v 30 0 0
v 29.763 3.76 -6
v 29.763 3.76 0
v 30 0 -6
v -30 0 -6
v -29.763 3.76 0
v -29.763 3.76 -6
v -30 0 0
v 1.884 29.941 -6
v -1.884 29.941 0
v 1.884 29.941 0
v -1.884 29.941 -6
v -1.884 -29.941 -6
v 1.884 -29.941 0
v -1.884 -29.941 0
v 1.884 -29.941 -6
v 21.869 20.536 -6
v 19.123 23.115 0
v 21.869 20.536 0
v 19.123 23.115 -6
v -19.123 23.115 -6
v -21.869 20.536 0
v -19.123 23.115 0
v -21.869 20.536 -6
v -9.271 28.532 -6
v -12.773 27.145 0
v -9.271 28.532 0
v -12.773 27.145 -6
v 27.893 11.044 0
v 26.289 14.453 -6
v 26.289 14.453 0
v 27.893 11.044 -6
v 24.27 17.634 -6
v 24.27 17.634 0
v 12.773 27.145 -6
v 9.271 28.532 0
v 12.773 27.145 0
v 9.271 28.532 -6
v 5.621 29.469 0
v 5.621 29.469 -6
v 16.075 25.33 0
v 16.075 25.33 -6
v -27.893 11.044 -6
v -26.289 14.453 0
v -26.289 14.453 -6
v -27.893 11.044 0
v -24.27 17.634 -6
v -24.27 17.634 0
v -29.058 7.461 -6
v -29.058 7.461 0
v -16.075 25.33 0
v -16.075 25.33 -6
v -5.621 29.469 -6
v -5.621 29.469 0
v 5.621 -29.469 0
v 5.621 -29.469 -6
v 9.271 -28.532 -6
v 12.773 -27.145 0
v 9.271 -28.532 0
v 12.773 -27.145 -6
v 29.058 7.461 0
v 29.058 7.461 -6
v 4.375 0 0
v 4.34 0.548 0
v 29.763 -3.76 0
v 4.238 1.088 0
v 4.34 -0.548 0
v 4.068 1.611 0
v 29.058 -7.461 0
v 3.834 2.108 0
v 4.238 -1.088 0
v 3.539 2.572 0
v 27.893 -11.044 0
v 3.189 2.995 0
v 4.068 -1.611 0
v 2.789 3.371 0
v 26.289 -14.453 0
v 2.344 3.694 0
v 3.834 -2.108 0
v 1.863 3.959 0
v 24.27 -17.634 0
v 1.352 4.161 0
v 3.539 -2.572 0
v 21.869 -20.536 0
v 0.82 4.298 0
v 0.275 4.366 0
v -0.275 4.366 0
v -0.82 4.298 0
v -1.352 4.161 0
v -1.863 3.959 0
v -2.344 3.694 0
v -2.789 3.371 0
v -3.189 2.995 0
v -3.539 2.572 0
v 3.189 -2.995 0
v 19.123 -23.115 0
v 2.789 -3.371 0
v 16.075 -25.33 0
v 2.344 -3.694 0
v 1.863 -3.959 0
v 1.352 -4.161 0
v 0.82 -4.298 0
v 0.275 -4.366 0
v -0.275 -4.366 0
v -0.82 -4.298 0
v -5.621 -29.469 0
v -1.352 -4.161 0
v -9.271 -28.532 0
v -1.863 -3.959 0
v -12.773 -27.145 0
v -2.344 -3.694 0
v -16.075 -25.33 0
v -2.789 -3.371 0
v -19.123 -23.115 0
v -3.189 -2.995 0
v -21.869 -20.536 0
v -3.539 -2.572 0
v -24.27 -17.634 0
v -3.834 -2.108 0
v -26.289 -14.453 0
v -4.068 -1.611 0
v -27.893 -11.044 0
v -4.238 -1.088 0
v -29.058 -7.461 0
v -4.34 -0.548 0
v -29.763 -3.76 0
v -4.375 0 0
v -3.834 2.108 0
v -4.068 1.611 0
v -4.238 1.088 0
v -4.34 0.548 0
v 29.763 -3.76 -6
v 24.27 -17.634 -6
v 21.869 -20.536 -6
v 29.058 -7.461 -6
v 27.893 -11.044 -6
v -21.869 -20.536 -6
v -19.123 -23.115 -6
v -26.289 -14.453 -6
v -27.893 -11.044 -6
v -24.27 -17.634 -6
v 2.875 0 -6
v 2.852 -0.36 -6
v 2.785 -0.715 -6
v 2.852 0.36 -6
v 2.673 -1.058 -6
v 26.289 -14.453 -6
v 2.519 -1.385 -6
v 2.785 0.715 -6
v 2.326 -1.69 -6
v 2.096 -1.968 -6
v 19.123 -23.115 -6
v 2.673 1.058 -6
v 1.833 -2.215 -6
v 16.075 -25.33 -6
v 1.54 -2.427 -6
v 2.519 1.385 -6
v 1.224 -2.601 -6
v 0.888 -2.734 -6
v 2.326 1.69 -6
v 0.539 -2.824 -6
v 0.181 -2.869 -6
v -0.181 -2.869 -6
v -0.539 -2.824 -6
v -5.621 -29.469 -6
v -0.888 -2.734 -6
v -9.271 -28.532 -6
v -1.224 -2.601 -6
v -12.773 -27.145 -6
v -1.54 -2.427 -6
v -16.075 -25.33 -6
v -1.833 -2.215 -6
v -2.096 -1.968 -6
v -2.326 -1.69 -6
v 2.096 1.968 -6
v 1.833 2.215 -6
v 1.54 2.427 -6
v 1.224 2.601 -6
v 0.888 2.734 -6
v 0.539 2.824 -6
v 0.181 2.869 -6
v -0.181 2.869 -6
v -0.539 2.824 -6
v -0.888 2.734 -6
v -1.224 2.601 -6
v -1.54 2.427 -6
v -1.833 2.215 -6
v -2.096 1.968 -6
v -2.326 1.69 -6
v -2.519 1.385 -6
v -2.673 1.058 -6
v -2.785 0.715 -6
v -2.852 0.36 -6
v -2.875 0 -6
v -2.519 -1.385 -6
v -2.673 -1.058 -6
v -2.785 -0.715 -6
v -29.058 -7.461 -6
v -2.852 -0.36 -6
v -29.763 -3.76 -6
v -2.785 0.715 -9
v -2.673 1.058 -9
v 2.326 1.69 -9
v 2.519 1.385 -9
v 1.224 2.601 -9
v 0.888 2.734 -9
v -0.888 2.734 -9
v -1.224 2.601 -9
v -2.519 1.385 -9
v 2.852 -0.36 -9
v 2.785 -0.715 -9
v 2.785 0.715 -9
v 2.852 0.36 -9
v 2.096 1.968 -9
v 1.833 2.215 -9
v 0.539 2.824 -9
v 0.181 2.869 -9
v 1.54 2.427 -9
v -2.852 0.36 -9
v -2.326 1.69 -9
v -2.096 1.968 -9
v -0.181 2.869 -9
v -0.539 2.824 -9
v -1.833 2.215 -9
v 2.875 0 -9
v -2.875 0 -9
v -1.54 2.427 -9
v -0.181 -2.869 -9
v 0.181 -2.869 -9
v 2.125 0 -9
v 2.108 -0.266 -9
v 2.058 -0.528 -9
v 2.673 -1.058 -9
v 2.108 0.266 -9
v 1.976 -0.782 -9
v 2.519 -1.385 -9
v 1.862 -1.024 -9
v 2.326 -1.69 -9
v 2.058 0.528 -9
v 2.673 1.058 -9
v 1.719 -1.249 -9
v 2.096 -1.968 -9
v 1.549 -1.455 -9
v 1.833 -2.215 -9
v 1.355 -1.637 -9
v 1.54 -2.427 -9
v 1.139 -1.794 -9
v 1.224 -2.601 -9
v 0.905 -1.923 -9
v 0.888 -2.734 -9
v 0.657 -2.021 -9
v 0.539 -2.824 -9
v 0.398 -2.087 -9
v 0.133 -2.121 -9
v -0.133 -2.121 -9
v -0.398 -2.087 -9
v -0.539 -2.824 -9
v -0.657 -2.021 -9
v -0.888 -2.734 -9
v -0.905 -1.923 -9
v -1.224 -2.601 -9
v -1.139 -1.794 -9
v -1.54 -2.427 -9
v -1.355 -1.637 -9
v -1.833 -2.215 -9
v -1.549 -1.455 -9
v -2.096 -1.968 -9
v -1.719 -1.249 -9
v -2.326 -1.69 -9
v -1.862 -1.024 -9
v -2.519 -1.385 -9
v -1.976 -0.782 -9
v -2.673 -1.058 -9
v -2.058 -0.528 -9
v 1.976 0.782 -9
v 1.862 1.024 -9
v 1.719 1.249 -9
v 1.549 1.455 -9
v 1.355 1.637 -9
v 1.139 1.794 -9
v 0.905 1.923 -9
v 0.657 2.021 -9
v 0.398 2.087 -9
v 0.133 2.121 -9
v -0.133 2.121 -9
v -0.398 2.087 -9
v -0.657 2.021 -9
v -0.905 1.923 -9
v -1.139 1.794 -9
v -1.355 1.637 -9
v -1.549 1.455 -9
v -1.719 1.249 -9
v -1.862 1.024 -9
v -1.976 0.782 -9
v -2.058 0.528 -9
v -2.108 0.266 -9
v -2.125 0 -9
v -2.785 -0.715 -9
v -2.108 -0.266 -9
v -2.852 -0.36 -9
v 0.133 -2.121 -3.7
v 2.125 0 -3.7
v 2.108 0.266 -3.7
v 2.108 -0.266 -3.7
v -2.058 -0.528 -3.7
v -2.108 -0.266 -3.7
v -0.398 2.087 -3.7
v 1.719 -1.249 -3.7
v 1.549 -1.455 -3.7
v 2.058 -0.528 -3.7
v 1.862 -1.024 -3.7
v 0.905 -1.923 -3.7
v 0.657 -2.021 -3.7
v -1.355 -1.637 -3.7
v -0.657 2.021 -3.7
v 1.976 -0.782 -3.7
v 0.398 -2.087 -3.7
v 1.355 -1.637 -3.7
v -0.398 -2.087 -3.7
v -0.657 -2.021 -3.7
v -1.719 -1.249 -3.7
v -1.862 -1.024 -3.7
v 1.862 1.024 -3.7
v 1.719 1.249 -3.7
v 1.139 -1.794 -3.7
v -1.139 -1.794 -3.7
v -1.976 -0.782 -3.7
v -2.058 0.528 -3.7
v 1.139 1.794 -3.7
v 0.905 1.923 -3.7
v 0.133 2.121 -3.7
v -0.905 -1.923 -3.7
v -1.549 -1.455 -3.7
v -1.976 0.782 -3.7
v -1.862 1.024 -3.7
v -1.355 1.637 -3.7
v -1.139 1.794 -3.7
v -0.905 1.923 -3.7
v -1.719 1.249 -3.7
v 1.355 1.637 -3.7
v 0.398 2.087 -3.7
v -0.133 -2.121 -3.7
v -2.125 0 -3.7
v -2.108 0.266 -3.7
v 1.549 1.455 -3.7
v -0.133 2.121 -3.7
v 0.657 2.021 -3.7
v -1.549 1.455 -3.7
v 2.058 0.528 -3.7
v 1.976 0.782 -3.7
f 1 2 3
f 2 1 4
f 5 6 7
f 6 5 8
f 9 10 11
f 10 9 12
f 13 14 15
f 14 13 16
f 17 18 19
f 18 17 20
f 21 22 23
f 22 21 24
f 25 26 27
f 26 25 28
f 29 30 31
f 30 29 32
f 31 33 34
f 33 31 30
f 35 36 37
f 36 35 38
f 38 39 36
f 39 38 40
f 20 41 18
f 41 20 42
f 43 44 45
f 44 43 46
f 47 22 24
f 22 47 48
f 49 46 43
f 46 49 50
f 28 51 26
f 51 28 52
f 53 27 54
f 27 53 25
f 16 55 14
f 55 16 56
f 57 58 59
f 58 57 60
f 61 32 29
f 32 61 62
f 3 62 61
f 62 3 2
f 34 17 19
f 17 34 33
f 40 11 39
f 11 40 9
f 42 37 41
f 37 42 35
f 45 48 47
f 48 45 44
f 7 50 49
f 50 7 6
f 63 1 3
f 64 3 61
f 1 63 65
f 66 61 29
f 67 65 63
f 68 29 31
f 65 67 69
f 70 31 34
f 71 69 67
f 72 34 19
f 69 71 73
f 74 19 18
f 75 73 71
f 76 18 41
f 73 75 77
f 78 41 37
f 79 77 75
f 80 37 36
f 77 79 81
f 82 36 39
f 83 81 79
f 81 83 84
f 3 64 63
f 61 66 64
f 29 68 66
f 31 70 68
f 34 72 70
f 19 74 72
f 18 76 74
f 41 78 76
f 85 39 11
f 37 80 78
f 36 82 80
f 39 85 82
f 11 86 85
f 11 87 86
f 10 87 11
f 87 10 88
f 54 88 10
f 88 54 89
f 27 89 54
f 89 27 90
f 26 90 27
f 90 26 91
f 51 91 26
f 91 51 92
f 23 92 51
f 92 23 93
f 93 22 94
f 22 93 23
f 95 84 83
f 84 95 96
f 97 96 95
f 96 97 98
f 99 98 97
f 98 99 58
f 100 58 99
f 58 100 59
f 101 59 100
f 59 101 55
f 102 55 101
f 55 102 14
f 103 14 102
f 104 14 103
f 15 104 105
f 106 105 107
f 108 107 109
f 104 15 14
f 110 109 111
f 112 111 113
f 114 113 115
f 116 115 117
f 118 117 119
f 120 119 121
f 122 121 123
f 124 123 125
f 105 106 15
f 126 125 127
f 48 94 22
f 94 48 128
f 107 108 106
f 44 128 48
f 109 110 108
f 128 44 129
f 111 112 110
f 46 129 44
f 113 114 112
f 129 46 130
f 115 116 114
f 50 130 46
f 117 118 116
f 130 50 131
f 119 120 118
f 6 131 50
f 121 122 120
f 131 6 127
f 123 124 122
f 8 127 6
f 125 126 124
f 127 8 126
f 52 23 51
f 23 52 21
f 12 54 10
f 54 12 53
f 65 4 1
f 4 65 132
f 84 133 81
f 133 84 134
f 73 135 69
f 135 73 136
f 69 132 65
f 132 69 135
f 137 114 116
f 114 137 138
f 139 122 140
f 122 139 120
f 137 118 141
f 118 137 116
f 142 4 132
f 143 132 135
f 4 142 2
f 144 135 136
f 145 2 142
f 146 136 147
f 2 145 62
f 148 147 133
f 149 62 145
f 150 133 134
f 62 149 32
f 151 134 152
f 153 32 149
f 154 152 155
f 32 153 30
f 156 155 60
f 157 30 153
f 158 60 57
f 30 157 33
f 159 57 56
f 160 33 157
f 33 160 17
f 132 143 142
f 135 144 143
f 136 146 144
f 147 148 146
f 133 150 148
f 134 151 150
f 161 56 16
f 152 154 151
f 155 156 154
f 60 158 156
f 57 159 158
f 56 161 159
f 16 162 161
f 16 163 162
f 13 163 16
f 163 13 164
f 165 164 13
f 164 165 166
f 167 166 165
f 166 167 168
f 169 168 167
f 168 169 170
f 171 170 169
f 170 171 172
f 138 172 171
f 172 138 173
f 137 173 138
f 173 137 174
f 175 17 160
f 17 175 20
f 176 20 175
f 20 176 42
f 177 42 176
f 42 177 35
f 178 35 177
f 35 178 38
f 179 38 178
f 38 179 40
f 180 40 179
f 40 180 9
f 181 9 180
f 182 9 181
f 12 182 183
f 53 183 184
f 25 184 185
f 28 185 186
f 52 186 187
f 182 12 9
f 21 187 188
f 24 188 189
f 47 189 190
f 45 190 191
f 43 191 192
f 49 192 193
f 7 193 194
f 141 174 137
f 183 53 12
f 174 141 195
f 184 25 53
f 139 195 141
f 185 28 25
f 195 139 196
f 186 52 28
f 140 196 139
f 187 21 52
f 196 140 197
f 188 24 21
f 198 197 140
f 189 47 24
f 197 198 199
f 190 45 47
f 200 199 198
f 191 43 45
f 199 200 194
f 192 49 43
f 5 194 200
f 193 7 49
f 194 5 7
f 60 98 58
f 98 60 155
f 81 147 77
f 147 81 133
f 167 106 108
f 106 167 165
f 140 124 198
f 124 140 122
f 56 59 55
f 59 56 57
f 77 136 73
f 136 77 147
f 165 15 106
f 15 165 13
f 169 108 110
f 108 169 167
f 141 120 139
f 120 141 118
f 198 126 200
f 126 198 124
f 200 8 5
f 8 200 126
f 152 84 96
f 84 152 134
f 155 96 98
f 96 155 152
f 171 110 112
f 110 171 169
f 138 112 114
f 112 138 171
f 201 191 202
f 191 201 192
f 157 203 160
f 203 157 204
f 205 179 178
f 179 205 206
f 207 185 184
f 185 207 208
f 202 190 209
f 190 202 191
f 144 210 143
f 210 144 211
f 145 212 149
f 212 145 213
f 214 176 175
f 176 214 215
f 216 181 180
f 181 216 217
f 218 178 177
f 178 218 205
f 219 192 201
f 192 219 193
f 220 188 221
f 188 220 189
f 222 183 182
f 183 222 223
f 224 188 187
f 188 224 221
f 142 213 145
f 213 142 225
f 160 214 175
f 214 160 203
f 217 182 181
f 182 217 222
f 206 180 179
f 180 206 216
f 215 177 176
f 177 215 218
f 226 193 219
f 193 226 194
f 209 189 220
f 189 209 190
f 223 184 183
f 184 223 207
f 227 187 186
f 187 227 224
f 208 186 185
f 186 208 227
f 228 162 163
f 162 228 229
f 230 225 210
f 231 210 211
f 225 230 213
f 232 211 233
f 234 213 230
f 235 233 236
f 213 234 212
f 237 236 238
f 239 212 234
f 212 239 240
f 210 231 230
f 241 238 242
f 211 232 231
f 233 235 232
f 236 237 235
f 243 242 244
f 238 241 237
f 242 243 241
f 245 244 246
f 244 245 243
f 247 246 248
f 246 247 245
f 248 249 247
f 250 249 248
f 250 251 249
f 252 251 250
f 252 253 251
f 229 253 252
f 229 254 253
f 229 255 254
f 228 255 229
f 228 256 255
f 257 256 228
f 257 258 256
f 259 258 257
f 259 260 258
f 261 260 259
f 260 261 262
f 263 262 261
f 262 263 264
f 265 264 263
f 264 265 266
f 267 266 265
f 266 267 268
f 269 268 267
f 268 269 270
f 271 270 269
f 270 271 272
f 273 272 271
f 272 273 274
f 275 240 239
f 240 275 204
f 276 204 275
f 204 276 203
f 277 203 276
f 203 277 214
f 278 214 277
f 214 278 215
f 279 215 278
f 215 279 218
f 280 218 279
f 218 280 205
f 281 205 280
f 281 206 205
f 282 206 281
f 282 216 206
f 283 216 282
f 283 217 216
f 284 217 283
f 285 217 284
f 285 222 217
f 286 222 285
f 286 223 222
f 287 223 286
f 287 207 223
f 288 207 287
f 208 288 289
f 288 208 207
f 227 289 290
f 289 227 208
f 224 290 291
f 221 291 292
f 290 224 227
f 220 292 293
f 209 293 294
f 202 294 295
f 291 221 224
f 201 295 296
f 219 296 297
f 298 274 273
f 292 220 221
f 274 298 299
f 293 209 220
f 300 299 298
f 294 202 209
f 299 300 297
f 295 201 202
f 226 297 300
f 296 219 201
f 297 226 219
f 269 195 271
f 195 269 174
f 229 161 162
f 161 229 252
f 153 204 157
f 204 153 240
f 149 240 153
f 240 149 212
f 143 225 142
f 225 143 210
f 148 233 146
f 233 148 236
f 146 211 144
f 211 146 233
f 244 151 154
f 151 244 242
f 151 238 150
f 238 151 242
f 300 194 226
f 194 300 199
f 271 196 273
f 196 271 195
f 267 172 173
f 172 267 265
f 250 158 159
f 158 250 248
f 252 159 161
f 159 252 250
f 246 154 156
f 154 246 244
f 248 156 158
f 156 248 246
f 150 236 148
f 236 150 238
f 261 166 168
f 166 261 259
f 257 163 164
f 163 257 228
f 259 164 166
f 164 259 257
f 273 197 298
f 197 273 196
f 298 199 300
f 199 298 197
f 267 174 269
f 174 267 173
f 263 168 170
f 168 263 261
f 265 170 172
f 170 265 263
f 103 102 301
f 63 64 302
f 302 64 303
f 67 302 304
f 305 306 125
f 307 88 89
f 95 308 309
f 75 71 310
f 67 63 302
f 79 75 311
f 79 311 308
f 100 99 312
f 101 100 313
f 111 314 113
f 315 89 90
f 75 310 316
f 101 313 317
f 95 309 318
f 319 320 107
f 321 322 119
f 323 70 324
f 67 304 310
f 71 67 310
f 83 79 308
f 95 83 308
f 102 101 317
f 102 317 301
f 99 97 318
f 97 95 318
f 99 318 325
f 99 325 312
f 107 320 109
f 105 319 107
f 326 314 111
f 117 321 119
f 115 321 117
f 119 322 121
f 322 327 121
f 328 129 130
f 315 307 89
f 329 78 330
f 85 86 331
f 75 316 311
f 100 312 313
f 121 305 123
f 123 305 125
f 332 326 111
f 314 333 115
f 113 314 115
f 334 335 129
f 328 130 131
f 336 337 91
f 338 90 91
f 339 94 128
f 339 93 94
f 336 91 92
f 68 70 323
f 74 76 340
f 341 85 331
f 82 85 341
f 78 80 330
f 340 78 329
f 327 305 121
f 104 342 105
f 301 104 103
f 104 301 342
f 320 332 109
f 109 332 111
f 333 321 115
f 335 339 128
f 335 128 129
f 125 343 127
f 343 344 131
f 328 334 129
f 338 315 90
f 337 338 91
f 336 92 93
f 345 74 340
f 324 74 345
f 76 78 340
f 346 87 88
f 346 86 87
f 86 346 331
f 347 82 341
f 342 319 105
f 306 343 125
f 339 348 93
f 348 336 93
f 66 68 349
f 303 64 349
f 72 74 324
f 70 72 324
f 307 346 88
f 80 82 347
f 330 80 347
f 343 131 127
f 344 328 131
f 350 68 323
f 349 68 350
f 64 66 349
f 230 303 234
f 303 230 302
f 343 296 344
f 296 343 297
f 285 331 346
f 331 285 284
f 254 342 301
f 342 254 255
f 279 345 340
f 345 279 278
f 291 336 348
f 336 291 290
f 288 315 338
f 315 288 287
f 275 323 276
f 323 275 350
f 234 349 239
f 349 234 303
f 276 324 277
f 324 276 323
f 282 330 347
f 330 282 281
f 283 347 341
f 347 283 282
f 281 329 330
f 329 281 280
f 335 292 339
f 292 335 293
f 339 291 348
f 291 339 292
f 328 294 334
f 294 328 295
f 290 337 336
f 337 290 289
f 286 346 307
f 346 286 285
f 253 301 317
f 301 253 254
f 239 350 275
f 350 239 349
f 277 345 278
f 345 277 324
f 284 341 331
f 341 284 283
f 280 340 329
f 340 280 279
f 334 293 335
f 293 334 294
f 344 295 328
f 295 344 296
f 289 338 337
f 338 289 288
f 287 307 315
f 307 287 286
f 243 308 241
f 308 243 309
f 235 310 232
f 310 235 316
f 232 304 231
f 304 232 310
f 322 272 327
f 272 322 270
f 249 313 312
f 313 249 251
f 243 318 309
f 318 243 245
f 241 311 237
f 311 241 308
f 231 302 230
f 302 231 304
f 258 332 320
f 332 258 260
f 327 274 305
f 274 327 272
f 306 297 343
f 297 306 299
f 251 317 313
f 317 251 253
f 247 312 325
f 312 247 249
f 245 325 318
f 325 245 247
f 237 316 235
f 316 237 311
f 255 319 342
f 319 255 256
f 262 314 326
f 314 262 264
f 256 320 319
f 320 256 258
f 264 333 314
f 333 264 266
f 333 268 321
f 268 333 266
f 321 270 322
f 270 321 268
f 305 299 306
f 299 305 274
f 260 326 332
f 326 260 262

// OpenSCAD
$fn = 50;


difference() {
	union() {
		translate(v = [0, 0, -6.0000000000]) {
			cylinder(h = 6, r = 30.0000000000);
		}
		translate(v = [0, 0, -9.0000000000]) {
			cylinder(h = 9, r = 2.8750000000);
		}
	}
	union() {
		translate(v = [0, 0, 0]) {
			rotate(a = [0, 0, 0]) {
				difference() {
					union() {
						translate(v = [0, 0, -9.0000000000]) {
							cylinder(h = 9, r = 2.0000000000);
						}
						translate(v = [0, 0, -3.7000000000]) {
							cylinder(h = 3.7000000000, r1 = 2.1250000000, r2 = 4.3750000000);
						}
						translate(v = [0, 0, -9.0000000000]) {
							cylinder(h = 9, r = 2.1250000000);
						}
						translate(v = [0, 0, -9.0000000000]) {
							cylinder(h = 9, r = 2.0000000000);
						}
					}
					union();
				}
			}
		}
	}
}
